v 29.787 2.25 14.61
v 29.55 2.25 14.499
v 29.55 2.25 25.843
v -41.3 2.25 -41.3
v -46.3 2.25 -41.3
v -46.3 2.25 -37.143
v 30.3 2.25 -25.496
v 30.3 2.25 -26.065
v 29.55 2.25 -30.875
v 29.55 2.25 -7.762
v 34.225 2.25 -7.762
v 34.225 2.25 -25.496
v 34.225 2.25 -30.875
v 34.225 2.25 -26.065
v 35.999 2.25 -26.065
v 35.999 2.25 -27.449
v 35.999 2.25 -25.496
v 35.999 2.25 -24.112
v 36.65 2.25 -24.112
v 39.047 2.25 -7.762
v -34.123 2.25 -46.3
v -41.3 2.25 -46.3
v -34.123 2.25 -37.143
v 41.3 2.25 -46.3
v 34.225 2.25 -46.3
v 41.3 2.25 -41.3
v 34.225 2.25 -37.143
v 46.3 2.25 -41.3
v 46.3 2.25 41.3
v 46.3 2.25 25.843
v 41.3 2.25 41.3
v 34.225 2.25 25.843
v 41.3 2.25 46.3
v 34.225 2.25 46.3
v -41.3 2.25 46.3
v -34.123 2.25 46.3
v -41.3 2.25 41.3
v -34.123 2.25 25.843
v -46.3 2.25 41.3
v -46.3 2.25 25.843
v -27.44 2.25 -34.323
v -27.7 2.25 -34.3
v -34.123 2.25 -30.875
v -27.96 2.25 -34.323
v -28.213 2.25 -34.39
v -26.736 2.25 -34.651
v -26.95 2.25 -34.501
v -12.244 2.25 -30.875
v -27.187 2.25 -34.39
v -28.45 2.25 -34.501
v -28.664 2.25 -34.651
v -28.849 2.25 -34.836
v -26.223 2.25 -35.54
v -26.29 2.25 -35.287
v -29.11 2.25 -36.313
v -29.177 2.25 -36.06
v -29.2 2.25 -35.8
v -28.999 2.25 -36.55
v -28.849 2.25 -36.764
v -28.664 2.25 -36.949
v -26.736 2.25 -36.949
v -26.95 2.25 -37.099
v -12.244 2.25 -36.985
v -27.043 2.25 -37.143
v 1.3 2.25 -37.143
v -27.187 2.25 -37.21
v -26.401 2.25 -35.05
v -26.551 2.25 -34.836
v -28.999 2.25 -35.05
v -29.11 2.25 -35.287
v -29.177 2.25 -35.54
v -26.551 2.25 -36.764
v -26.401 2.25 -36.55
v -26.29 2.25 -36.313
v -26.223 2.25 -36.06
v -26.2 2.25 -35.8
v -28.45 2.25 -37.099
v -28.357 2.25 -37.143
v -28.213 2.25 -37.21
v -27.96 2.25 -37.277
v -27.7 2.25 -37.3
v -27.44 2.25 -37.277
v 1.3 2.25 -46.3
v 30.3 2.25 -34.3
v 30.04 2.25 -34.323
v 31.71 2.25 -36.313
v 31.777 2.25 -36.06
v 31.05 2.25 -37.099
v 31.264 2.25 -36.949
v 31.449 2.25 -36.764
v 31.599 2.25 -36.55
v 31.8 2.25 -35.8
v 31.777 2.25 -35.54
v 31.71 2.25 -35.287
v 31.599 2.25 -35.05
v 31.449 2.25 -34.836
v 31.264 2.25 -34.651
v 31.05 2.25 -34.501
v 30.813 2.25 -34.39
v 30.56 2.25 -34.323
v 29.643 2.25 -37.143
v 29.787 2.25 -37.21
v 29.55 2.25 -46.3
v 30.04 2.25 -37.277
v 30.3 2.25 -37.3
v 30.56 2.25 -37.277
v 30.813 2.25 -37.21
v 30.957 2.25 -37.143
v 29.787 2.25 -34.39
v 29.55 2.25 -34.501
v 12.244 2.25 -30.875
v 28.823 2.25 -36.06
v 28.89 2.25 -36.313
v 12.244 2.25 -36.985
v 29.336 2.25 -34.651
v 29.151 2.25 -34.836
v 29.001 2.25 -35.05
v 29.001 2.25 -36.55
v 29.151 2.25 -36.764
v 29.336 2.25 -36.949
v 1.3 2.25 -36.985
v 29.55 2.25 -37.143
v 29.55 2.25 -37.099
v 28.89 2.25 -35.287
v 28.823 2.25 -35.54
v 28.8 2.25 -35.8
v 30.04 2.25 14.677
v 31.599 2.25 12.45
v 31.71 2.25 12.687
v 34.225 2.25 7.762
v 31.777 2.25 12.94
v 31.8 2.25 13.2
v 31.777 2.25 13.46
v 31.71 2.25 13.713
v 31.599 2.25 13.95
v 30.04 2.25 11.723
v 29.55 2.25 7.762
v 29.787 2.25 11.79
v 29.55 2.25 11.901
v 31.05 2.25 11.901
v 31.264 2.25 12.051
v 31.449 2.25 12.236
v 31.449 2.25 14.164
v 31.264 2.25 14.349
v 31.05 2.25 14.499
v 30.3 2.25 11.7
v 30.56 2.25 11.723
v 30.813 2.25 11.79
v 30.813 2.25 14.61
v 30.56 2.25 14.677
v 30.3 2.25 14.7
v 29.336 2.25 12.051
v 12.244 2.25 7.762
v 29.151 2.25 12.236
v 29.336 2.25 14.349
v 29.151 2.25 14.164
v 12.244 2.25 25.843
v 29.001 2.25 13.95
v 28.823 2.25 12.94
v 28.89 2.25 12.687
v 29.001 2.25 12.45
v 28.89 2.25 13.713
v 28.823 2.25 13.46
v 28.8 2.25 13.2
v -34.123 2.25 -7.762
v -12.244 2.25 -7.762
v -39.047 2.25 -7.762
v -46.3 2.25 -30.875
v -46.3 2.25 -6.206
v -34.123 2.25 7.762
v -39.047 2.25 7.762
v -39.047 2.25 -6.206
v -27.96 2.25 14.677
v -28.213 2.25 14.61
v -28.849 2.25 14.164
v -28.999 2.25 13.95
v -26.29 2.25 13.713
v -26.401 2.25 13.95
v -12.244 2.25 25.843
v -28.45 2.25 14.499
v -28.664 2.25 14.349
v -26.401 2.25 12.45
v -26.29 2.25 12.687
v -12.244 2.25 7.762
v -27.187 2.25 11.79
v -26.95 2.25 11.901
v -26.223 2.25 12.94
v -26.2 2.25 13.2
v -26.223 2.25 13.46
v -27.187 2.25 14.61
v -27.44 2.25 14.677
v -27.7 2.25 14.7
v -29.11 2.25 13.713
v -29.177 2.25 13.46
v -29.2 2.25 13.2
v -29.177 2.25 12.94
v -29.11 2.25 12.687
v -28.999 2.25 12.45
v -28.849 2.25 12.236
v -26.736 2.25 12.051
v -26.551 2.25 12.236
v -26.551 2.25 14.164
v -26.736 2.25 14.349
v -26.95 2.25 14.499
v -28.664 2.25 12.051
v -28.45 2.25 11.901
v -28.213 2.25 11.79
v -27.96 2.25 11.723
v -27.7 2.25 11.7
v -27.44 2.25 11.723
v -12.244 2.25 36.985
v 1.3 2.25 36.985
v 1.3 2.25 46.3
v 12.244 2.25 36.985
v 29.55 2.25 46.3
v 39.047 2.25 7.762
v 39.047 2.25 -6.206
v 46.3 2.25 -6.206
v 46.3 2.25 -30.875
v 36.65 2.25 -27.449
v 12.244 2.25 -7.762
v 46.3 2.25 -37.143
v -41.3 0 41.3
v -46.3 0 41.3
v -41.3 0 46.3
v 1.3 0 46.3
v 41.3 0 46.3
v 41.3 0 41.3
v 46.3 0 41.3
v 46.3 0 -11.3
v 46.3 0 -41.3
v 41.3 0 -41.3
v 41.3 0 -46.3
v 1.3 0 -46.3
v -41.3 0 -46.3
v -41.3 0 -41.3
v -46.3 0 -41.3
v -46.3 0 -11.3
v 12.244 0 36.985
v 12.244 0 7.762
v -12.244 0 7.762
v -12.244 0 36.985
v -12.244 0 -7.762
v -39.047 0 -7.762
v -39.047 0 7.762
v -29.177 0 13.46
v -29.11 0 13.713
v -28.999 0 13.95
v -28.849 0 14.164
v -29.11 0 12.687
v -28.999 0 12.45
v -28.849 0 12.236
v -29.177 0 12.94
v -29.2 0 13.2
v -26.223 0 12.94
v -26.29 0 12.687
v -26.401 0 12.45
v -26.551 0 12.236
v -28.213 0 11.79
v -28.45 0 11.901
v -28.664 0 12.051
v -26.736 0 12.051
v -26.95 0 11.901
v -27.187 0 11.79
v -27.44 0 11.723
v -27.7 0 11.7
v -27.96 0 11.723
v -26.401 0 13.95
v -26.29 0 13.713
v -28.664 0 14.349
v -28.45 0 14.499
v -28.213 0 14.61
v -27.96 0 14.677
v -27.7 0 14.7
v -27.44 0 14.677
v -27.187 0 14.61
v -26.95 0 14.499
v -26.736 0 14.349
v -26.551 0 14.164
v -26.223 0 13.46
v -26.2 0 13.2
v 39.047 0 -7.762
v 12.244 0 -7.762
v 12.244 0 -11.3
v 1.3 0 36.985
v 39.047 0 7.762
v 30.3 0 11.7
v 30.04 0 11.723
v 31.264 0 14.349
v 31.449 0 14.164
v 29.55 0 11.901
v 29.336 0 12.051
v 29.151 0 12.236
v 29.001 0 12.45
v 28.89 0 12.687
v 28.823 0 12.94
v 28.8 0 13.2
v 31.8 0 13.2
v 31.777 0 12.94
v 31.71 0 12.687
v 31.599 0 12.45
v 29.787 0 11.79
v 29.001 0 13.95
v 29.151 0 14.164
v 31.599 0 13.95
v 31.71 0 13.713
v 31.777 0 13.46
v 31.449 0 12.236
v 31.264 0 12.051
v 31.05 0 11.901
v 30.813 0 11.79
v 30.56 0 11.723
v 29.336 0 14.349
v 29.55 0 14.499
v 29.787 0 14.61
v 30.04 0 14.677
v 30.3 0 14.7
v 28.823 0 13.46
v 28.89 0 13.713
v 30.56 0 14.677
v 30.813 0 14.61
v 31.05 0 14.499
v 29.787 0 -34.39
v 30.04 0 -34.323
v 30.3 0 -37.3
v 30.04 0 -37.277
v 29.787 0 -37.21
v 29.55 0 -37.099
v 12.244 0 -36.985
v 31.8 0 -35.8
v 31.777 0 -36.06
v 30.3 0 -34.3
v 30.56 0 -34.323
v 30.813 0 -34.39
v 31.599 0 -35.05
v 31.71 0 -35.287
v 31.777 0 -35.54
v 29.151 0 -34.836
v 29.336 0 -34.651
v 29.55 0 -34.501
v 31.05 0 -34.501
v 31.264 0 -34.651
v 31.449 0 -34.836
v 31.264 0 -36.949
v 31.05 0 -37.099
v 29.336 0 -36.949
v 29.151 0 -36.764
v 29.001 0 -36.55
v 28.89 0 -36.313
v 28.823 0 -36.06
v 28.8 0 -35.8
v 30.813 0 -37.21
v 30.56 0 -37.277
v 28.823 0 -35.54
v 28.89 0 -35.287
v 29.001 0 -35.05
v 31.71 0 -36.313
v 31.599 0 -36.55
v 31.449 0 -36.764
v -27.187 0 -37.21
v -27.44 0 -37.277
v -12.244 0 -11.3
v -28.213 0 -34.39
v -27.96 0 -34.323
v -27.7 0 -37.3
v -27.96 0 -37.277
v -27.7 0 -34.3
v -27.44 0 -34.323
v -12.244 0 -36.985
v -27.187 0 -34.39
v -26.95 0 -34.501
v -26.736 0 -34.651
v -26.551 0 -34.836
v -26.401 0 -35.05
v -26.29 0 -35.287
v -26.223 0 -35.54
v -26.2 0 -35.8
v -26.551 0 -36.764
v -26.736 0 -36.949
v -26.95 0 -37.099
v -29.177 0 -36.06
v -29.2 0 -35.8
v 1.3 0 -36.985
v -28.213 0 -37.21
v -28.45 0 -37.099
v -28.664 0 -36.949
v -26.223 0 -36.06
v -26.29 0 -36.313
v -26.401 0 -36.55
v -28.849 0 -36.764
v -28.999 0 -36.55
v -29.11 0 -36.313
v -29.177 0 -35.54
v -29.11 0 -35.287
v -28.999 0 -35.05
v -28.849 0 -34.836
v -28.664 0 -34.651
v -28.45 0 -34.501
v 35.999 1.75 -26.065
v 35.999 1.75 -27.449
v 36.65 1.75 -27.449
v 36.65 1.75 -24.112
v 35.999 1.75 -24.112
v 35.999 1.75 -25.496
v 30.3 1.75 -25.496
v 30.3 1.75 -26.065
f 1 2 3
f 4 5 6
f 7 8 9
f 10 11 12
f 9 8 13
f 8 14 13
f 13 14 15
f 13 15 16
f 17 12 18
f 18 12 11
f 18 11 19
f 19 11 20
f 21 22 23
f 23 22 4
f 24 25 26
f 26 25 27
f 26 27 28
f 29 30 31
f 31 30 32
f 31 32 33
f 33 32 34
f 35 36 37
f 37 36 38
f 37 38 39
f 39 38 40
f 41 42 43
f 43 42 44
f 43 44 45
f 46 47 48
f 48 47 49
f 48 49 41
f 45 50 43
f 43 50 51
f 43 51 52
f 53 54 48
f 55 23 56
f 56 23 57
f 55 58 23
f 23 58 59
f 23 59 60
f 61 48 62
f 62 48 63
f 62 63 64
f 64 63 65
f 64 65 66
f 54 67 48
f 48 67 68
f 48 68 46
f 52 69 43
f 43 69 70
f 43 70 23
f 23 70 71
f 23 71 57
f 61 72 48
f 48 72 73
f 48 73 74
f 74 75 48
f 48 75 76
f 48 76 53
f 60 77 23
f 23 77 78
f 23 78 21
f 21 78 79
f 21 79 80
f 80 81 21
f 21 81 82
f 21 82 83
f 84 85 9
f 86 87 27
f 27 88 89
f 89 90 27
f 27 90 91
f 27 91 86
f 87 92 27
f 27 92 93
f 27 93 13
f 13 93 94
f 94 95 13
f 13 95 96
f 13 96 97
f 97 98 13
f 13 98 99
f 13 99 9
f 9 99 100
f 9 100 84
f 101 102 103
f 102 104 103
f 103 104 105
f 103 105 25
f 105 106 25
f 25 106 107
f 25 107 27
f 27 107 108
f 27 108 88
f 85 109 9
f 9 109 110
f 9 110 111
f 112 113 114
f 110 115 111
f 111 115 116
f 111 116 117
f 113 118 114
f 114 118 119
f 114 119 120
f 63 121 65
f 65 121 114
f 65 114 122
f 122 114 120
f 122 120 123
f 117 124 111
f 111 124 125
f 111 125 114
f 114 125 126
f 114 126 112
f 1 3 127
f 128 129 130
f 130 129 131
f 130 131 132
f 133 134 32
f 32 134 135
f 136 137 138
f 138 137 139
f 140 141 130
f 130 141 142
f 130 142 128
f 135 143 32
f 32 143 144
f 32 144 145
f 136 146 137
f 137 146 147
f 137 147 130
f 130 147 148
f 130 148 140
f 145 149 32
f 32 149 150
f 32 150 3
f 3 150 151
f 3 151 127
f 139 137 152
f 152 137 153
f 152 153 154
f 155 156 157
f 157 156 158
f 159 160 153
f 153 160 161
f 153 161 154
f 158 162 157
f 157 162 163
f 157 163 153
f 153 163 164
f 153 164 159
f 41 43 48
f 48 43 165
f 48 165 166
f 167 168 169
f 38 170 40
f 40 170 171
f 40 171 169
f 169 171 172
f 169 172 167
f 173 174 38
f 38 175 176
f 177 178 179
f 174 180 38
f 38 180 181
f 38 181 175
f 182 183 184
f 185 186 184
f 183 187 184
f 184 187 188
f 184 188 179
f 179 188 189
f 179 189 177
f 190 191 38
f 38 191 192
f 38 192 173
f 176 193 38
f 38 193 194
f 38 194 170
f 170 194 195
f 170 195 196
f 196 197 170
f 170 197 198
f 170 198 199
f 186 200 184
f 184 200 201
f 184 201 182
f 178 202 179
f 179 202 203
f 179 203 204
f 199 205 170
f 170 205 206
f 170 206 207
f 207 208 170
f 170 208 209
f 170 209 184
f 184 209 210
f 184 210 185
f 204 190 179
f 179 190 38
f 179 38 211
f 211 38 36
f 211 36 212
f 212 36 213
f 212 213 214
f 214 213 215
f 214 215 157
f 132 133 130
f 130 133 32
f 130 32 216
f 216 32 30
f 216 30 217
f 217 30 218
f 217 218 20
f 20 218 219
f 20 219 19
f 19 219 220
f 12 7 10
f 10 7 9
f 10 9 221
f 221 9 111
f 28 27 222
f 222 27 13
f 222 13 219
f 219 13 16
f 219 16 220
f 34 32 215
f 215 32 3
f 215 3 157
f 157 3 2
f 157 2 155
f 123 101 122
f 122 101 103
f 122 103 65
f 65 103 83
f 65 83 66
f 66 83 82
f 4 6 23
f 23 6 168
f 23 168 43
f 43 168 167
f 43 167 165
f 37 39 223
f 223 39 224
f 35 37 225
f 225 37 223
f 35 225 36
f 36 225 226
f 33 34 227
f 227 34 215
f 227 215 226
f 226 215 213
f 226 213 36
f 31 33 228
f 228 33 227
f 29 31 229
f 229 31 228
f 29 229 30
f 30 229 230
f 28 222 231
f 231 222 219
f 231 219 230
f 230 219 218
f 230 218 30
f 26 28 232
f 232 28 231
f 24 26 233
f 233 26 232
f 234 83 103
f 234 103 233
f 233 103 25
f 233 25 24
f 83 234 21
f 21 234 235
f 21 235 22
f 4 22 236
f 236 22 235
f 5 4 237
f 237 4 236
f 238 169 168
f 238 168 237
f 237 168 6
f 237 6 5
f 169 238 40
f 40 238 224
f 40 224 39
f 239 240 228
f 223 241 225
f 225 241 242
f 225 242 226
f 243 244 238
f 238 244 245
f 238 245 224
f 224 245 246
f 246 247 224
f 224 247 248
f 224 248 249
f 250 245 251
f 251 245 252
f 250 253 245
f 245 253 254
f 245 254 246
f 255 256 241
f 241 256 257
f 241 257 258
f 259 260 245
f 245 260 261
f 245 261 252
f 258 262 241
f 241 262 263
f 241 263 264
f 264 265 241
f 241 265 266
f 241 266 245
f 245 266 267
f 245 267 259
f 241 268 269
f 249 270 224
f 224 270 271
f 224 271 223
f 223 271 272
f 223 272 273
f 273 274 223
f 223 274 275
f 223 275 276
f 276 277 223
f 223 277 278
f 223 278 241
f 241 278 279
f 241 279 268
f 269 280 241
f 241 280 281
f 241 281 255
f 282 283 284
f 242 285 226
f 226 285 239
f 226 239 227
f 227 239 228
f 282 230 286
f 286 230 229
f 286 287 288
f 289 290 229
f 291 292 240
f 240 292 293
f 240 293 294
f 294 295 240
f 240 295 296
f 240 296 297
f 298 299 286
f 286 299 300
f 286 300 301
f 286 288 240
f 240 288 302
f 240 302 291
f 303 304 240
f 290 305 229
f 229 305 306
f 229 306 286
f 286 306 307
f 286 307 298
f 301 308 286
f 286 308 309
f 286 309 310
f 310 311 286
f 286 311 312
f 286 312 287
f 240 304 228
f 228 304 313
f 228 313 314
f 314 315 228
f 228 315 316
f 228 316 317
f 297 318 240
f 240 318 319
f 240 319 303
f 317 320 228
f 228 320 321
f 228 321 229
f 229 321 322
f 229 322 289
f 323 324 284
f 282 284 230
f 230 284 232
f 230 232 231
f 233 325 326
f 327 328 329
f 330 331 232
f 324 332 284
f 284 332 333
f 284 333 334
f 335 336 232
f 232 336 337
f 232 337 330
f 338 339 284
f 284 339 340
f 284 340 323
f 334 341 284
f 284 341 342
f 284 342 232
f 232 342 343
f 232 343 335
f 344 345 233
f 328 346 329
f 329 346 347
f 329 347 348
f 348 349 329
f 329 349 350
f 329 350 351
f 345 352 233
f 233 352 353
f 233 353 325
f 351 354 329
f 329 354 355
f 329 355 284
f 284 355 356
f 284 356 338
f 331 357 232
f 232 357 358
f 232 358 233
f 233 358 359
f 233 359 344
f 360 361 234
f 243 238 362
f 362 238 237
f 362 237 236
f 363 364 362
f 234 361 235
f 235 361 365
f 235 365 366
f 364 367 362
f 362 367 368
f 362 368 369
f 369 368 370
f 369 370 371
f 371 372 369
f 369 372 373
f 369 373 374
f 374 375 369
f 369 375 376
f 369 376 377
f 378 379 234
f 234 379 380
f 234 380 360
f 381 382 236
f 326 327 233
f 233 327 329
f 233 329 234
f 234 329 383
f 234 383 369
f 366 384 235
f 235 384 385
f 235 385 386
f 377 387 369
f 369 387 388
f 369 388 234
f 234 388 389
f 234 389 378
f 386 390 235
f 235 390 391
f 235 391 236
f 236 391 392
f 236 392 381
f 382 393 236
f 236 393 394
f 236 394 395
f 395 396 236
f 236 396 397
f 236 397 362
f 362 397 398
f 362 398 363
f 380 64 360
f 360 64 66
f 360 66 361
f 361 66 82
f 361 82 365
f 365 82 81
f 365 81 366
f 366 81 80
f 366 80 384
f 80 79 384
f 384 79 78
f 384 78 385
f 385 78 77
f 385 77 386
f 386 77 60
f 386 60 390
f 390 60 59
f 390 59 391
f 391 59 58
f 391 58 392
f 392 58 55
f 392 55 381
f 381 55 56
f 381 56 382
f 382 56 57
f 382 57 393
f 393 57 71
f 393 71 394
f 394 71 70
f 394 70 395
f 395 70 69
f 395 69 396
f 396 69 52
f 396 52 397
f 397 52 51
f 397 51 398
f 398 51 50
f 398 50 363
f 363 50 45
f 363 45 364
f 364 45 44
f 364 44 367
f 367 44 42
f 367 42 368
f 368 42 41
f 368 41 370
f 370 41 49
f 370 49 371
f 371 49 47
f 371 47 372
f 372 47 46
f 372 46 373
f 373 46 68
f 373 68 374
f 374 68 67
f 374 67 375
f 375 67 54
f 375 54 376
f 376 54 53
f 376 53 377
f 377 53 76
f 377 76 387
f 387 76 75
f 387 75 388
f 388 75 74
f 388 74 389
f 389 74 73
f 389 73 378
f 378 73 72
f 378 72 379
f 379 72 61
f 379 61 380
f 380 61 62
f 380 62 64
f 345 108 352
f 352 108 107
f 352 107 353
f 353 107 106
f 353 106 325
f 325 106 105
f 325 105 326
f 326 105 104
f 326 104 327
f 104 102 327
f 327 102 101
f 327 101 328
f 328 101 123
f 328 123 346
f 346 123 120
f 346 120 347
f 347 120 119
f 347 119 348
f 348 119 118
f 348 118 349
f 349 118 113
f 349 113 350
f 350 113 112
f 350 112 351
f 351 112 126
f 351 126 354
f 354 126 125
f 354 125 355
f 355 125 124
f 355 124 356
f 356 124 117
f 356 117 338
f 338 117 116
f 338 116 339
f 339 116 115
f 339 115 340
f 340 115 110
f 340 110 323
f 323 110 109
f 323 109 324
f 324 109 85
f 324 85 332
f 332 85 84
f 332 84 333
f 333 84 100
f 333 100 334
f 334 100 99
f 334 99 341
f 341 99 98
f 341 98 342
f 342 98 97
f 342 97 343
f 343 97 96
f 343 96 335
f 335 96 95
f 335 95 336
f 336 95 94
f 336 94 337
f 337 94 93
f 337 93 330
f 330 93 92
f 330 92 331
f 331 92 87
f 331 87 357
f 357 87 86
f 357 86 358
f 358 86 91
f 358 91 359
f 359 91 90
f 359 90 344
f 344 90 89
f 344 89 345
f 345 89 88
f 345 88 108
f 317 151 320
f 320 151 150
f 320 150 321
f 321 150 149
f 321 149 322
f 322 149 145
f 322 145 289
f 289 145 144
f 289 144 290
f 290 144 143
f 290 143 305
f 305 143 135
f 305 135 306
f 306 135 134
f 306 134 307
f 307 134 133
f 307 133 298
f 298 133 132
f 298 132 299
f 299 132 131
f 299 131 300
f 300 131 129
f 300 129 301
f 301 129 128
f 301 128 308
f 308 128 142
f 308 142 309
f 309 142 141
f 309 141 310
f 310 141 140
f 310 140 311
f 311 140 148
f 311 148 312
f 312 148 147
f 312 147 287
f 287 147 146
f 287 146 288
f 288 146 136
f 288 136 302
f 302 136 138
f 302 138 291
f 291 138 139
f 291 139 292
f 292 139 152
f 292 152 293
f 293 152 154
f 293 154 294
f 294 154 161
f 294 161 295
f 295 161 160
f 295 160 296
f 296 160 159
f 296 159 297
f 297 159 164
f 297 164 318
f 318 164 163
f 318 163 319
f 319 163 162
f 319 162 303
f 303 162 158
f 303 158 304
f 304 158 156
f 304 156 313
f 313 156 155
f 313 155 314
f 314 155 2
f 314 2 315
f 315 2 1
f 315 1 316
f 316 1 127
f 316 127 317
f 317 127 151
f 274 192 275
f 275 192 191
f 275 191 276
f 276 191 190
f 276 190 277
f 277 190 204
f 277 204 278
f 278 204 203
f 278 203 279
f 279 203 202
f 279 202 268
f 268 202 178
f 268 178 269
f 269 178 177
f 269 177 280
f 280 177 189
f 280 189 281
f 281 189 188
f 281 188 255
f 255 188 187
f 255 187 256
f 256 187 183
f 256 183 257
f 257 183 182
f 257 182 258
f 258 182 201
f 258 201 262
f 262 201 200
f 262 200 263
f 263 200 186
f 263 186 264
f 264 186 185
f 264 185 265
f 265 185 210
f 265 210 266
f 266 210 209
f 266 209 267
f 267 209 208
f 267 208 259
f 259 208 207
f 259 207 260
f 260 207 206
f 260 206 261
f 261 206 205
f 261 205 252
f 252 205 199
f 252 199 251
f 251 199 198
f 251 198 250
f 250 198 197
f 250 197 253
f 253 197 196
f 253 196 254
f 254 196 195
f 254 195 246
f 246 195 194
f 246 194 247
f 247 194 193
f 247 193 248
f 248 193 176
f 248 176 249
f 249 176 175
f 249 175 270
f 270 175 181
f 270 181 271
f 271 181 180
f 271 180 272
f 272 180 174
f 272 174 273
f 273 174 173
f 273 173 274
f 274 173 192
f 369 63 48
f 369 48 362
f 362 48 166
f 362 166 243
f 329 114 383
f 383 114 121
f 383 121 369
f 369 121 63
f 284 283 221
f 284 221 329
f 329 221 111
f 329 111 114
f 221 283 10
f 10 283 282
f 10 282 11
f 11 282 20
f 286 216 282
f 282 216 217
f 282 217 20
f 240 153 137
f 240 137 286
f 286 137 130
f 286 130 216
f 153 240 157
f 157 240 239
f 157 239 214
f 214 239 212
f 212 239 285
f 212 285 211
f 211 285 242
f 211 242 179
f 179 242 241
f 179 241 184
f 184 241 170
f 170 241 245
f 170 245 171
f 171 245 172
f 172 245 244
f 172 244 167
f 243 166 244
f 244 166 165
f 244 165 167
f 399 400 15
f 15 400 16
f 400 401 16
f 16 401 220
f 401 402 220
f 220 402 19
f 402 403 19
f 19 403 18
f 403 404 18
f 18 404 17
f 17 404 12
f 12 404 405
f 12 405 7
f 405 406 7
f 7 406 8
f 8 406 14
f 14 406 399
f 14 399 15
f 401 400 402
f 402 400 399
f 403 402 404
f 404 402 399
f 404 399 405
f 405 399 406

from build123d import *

# Parameters (mm, degrees)
SKETCH2_W           = 5
SKETCH2_H           = 82.6
SKETCH2_W_2         = 82.6
SKETCH2_H_2         = 5
BOSS_EXTRUDE1_DEPTH = 2.25
SKETCH5_R           = 1.5
CUT_EXTRUDE3_DEPTH  = 10
SKETCH6_W           = 24.487512306
SKETCH6_H           = 29.223395674
SKETCH6_H_2         = 15.523504638
SKETCH6_W_2         = 26.803129216
CUT_EXTRUDE4_DEPTH  = 10
CUT_EXTRUDE5_DEPTH  = 0.5


with BuildPart() as part:
    # Sketch2 → Boss-Extrude1 (new body)
    with BuildSketch(Plane(origin=(0, 0, 0), x_dir=(1, 0, 0), z_dir=(0, 1, 0))):
        with Locations((-43.8, 0)):
            Rectangle(SKETCH2_W, SKETCH2_H)
        Rectangle(SKETCH2_W_2, SKETCH2_H)
        with Locations((0, -43.8)):
            Rectangle(SKETCH2_W_2, SKETCH2_H_2)
        with Locations((43.8, 0)):
            Rectangle(SKETCH2_W, SKETCH2_H)
        with Locations((0, 43.8)):
            Rectangle(SKETCH2_W_2, SKETCH2_H_2)
    extrude(amount=BOSS_EXTRUDE1_DEPTH)

    # Sketch5 → Cut-Extrude3 (cut)
    with BuildSketch(Plane(origin=(0, 2.25, 0), x_dir=(1, 0, 0), z_dir=(0, 1, 0))):
        with Locations((-27.7, 35.8)):
            Circle(SKETCH5_R)
        with Locations((30.3, 35.8)):
            Circle(SKETCH5_R)
        with Locations((30.3, -13.2)):
            Circle(SKETCH5_R)
        with Locations((-27.7, -13.2)):
            Circle(SKETCH5_R)
    extrude(amount=-CUT_EXTRUDE3_DEPTH, mode=Mode.SUBTRACT)

    # Sketch6 → Cut-Extrude4 (cut)
    with BuildSketch(Plane(origin=(0, 2.25, 0), x_dir=(1, 0, 0), z_dir=(0, 1, 0))):
        with Locations((0, 22.373450156)):
            Rectangle(SKETCH6_W, SKETCH6_H)
        Rectangle(SKETCH6_W, SKETCH6_H_2)
        with Locations((25.645320761, 0)):
            Rectangle(SKETCH6_W_2, SKETCH6_H_2)
        with Locations((0, -22.373450156)):
            Rectangle(SKETCH6_W, SKETCH6_H)
        with Locations((-25.645320761, 0)):
            Rectangle(SKETCH6_W_2, SKETCH6_H_2)
    extrude(amount=-CUT_EXTRUDE4_DEPTH, mode=Mode.SUBTRACT)

    # Sketch7 → Cut-Extrude5 (cut)
    with BuildSketch(Plane(origin=(0, 2.25, 0), x_dir=(1, 0, 0), z_dir=(0, 1, 0))):
        Polygon((35.998717949, 27.449358974), (36.65, 27.449358974), (36.65, 24.111538462), (35.998717949, 24.111538462), (35.998717949, 25.495512821), (30.3, 25.495512821), (30.3, 26.065384615), (35.998717949, 26.065384615), align=None)
    extrude(amount=-CUT_EXTRUDE5_DEPTH, mode=Mode.SUBTRACT)


solid = part.part
